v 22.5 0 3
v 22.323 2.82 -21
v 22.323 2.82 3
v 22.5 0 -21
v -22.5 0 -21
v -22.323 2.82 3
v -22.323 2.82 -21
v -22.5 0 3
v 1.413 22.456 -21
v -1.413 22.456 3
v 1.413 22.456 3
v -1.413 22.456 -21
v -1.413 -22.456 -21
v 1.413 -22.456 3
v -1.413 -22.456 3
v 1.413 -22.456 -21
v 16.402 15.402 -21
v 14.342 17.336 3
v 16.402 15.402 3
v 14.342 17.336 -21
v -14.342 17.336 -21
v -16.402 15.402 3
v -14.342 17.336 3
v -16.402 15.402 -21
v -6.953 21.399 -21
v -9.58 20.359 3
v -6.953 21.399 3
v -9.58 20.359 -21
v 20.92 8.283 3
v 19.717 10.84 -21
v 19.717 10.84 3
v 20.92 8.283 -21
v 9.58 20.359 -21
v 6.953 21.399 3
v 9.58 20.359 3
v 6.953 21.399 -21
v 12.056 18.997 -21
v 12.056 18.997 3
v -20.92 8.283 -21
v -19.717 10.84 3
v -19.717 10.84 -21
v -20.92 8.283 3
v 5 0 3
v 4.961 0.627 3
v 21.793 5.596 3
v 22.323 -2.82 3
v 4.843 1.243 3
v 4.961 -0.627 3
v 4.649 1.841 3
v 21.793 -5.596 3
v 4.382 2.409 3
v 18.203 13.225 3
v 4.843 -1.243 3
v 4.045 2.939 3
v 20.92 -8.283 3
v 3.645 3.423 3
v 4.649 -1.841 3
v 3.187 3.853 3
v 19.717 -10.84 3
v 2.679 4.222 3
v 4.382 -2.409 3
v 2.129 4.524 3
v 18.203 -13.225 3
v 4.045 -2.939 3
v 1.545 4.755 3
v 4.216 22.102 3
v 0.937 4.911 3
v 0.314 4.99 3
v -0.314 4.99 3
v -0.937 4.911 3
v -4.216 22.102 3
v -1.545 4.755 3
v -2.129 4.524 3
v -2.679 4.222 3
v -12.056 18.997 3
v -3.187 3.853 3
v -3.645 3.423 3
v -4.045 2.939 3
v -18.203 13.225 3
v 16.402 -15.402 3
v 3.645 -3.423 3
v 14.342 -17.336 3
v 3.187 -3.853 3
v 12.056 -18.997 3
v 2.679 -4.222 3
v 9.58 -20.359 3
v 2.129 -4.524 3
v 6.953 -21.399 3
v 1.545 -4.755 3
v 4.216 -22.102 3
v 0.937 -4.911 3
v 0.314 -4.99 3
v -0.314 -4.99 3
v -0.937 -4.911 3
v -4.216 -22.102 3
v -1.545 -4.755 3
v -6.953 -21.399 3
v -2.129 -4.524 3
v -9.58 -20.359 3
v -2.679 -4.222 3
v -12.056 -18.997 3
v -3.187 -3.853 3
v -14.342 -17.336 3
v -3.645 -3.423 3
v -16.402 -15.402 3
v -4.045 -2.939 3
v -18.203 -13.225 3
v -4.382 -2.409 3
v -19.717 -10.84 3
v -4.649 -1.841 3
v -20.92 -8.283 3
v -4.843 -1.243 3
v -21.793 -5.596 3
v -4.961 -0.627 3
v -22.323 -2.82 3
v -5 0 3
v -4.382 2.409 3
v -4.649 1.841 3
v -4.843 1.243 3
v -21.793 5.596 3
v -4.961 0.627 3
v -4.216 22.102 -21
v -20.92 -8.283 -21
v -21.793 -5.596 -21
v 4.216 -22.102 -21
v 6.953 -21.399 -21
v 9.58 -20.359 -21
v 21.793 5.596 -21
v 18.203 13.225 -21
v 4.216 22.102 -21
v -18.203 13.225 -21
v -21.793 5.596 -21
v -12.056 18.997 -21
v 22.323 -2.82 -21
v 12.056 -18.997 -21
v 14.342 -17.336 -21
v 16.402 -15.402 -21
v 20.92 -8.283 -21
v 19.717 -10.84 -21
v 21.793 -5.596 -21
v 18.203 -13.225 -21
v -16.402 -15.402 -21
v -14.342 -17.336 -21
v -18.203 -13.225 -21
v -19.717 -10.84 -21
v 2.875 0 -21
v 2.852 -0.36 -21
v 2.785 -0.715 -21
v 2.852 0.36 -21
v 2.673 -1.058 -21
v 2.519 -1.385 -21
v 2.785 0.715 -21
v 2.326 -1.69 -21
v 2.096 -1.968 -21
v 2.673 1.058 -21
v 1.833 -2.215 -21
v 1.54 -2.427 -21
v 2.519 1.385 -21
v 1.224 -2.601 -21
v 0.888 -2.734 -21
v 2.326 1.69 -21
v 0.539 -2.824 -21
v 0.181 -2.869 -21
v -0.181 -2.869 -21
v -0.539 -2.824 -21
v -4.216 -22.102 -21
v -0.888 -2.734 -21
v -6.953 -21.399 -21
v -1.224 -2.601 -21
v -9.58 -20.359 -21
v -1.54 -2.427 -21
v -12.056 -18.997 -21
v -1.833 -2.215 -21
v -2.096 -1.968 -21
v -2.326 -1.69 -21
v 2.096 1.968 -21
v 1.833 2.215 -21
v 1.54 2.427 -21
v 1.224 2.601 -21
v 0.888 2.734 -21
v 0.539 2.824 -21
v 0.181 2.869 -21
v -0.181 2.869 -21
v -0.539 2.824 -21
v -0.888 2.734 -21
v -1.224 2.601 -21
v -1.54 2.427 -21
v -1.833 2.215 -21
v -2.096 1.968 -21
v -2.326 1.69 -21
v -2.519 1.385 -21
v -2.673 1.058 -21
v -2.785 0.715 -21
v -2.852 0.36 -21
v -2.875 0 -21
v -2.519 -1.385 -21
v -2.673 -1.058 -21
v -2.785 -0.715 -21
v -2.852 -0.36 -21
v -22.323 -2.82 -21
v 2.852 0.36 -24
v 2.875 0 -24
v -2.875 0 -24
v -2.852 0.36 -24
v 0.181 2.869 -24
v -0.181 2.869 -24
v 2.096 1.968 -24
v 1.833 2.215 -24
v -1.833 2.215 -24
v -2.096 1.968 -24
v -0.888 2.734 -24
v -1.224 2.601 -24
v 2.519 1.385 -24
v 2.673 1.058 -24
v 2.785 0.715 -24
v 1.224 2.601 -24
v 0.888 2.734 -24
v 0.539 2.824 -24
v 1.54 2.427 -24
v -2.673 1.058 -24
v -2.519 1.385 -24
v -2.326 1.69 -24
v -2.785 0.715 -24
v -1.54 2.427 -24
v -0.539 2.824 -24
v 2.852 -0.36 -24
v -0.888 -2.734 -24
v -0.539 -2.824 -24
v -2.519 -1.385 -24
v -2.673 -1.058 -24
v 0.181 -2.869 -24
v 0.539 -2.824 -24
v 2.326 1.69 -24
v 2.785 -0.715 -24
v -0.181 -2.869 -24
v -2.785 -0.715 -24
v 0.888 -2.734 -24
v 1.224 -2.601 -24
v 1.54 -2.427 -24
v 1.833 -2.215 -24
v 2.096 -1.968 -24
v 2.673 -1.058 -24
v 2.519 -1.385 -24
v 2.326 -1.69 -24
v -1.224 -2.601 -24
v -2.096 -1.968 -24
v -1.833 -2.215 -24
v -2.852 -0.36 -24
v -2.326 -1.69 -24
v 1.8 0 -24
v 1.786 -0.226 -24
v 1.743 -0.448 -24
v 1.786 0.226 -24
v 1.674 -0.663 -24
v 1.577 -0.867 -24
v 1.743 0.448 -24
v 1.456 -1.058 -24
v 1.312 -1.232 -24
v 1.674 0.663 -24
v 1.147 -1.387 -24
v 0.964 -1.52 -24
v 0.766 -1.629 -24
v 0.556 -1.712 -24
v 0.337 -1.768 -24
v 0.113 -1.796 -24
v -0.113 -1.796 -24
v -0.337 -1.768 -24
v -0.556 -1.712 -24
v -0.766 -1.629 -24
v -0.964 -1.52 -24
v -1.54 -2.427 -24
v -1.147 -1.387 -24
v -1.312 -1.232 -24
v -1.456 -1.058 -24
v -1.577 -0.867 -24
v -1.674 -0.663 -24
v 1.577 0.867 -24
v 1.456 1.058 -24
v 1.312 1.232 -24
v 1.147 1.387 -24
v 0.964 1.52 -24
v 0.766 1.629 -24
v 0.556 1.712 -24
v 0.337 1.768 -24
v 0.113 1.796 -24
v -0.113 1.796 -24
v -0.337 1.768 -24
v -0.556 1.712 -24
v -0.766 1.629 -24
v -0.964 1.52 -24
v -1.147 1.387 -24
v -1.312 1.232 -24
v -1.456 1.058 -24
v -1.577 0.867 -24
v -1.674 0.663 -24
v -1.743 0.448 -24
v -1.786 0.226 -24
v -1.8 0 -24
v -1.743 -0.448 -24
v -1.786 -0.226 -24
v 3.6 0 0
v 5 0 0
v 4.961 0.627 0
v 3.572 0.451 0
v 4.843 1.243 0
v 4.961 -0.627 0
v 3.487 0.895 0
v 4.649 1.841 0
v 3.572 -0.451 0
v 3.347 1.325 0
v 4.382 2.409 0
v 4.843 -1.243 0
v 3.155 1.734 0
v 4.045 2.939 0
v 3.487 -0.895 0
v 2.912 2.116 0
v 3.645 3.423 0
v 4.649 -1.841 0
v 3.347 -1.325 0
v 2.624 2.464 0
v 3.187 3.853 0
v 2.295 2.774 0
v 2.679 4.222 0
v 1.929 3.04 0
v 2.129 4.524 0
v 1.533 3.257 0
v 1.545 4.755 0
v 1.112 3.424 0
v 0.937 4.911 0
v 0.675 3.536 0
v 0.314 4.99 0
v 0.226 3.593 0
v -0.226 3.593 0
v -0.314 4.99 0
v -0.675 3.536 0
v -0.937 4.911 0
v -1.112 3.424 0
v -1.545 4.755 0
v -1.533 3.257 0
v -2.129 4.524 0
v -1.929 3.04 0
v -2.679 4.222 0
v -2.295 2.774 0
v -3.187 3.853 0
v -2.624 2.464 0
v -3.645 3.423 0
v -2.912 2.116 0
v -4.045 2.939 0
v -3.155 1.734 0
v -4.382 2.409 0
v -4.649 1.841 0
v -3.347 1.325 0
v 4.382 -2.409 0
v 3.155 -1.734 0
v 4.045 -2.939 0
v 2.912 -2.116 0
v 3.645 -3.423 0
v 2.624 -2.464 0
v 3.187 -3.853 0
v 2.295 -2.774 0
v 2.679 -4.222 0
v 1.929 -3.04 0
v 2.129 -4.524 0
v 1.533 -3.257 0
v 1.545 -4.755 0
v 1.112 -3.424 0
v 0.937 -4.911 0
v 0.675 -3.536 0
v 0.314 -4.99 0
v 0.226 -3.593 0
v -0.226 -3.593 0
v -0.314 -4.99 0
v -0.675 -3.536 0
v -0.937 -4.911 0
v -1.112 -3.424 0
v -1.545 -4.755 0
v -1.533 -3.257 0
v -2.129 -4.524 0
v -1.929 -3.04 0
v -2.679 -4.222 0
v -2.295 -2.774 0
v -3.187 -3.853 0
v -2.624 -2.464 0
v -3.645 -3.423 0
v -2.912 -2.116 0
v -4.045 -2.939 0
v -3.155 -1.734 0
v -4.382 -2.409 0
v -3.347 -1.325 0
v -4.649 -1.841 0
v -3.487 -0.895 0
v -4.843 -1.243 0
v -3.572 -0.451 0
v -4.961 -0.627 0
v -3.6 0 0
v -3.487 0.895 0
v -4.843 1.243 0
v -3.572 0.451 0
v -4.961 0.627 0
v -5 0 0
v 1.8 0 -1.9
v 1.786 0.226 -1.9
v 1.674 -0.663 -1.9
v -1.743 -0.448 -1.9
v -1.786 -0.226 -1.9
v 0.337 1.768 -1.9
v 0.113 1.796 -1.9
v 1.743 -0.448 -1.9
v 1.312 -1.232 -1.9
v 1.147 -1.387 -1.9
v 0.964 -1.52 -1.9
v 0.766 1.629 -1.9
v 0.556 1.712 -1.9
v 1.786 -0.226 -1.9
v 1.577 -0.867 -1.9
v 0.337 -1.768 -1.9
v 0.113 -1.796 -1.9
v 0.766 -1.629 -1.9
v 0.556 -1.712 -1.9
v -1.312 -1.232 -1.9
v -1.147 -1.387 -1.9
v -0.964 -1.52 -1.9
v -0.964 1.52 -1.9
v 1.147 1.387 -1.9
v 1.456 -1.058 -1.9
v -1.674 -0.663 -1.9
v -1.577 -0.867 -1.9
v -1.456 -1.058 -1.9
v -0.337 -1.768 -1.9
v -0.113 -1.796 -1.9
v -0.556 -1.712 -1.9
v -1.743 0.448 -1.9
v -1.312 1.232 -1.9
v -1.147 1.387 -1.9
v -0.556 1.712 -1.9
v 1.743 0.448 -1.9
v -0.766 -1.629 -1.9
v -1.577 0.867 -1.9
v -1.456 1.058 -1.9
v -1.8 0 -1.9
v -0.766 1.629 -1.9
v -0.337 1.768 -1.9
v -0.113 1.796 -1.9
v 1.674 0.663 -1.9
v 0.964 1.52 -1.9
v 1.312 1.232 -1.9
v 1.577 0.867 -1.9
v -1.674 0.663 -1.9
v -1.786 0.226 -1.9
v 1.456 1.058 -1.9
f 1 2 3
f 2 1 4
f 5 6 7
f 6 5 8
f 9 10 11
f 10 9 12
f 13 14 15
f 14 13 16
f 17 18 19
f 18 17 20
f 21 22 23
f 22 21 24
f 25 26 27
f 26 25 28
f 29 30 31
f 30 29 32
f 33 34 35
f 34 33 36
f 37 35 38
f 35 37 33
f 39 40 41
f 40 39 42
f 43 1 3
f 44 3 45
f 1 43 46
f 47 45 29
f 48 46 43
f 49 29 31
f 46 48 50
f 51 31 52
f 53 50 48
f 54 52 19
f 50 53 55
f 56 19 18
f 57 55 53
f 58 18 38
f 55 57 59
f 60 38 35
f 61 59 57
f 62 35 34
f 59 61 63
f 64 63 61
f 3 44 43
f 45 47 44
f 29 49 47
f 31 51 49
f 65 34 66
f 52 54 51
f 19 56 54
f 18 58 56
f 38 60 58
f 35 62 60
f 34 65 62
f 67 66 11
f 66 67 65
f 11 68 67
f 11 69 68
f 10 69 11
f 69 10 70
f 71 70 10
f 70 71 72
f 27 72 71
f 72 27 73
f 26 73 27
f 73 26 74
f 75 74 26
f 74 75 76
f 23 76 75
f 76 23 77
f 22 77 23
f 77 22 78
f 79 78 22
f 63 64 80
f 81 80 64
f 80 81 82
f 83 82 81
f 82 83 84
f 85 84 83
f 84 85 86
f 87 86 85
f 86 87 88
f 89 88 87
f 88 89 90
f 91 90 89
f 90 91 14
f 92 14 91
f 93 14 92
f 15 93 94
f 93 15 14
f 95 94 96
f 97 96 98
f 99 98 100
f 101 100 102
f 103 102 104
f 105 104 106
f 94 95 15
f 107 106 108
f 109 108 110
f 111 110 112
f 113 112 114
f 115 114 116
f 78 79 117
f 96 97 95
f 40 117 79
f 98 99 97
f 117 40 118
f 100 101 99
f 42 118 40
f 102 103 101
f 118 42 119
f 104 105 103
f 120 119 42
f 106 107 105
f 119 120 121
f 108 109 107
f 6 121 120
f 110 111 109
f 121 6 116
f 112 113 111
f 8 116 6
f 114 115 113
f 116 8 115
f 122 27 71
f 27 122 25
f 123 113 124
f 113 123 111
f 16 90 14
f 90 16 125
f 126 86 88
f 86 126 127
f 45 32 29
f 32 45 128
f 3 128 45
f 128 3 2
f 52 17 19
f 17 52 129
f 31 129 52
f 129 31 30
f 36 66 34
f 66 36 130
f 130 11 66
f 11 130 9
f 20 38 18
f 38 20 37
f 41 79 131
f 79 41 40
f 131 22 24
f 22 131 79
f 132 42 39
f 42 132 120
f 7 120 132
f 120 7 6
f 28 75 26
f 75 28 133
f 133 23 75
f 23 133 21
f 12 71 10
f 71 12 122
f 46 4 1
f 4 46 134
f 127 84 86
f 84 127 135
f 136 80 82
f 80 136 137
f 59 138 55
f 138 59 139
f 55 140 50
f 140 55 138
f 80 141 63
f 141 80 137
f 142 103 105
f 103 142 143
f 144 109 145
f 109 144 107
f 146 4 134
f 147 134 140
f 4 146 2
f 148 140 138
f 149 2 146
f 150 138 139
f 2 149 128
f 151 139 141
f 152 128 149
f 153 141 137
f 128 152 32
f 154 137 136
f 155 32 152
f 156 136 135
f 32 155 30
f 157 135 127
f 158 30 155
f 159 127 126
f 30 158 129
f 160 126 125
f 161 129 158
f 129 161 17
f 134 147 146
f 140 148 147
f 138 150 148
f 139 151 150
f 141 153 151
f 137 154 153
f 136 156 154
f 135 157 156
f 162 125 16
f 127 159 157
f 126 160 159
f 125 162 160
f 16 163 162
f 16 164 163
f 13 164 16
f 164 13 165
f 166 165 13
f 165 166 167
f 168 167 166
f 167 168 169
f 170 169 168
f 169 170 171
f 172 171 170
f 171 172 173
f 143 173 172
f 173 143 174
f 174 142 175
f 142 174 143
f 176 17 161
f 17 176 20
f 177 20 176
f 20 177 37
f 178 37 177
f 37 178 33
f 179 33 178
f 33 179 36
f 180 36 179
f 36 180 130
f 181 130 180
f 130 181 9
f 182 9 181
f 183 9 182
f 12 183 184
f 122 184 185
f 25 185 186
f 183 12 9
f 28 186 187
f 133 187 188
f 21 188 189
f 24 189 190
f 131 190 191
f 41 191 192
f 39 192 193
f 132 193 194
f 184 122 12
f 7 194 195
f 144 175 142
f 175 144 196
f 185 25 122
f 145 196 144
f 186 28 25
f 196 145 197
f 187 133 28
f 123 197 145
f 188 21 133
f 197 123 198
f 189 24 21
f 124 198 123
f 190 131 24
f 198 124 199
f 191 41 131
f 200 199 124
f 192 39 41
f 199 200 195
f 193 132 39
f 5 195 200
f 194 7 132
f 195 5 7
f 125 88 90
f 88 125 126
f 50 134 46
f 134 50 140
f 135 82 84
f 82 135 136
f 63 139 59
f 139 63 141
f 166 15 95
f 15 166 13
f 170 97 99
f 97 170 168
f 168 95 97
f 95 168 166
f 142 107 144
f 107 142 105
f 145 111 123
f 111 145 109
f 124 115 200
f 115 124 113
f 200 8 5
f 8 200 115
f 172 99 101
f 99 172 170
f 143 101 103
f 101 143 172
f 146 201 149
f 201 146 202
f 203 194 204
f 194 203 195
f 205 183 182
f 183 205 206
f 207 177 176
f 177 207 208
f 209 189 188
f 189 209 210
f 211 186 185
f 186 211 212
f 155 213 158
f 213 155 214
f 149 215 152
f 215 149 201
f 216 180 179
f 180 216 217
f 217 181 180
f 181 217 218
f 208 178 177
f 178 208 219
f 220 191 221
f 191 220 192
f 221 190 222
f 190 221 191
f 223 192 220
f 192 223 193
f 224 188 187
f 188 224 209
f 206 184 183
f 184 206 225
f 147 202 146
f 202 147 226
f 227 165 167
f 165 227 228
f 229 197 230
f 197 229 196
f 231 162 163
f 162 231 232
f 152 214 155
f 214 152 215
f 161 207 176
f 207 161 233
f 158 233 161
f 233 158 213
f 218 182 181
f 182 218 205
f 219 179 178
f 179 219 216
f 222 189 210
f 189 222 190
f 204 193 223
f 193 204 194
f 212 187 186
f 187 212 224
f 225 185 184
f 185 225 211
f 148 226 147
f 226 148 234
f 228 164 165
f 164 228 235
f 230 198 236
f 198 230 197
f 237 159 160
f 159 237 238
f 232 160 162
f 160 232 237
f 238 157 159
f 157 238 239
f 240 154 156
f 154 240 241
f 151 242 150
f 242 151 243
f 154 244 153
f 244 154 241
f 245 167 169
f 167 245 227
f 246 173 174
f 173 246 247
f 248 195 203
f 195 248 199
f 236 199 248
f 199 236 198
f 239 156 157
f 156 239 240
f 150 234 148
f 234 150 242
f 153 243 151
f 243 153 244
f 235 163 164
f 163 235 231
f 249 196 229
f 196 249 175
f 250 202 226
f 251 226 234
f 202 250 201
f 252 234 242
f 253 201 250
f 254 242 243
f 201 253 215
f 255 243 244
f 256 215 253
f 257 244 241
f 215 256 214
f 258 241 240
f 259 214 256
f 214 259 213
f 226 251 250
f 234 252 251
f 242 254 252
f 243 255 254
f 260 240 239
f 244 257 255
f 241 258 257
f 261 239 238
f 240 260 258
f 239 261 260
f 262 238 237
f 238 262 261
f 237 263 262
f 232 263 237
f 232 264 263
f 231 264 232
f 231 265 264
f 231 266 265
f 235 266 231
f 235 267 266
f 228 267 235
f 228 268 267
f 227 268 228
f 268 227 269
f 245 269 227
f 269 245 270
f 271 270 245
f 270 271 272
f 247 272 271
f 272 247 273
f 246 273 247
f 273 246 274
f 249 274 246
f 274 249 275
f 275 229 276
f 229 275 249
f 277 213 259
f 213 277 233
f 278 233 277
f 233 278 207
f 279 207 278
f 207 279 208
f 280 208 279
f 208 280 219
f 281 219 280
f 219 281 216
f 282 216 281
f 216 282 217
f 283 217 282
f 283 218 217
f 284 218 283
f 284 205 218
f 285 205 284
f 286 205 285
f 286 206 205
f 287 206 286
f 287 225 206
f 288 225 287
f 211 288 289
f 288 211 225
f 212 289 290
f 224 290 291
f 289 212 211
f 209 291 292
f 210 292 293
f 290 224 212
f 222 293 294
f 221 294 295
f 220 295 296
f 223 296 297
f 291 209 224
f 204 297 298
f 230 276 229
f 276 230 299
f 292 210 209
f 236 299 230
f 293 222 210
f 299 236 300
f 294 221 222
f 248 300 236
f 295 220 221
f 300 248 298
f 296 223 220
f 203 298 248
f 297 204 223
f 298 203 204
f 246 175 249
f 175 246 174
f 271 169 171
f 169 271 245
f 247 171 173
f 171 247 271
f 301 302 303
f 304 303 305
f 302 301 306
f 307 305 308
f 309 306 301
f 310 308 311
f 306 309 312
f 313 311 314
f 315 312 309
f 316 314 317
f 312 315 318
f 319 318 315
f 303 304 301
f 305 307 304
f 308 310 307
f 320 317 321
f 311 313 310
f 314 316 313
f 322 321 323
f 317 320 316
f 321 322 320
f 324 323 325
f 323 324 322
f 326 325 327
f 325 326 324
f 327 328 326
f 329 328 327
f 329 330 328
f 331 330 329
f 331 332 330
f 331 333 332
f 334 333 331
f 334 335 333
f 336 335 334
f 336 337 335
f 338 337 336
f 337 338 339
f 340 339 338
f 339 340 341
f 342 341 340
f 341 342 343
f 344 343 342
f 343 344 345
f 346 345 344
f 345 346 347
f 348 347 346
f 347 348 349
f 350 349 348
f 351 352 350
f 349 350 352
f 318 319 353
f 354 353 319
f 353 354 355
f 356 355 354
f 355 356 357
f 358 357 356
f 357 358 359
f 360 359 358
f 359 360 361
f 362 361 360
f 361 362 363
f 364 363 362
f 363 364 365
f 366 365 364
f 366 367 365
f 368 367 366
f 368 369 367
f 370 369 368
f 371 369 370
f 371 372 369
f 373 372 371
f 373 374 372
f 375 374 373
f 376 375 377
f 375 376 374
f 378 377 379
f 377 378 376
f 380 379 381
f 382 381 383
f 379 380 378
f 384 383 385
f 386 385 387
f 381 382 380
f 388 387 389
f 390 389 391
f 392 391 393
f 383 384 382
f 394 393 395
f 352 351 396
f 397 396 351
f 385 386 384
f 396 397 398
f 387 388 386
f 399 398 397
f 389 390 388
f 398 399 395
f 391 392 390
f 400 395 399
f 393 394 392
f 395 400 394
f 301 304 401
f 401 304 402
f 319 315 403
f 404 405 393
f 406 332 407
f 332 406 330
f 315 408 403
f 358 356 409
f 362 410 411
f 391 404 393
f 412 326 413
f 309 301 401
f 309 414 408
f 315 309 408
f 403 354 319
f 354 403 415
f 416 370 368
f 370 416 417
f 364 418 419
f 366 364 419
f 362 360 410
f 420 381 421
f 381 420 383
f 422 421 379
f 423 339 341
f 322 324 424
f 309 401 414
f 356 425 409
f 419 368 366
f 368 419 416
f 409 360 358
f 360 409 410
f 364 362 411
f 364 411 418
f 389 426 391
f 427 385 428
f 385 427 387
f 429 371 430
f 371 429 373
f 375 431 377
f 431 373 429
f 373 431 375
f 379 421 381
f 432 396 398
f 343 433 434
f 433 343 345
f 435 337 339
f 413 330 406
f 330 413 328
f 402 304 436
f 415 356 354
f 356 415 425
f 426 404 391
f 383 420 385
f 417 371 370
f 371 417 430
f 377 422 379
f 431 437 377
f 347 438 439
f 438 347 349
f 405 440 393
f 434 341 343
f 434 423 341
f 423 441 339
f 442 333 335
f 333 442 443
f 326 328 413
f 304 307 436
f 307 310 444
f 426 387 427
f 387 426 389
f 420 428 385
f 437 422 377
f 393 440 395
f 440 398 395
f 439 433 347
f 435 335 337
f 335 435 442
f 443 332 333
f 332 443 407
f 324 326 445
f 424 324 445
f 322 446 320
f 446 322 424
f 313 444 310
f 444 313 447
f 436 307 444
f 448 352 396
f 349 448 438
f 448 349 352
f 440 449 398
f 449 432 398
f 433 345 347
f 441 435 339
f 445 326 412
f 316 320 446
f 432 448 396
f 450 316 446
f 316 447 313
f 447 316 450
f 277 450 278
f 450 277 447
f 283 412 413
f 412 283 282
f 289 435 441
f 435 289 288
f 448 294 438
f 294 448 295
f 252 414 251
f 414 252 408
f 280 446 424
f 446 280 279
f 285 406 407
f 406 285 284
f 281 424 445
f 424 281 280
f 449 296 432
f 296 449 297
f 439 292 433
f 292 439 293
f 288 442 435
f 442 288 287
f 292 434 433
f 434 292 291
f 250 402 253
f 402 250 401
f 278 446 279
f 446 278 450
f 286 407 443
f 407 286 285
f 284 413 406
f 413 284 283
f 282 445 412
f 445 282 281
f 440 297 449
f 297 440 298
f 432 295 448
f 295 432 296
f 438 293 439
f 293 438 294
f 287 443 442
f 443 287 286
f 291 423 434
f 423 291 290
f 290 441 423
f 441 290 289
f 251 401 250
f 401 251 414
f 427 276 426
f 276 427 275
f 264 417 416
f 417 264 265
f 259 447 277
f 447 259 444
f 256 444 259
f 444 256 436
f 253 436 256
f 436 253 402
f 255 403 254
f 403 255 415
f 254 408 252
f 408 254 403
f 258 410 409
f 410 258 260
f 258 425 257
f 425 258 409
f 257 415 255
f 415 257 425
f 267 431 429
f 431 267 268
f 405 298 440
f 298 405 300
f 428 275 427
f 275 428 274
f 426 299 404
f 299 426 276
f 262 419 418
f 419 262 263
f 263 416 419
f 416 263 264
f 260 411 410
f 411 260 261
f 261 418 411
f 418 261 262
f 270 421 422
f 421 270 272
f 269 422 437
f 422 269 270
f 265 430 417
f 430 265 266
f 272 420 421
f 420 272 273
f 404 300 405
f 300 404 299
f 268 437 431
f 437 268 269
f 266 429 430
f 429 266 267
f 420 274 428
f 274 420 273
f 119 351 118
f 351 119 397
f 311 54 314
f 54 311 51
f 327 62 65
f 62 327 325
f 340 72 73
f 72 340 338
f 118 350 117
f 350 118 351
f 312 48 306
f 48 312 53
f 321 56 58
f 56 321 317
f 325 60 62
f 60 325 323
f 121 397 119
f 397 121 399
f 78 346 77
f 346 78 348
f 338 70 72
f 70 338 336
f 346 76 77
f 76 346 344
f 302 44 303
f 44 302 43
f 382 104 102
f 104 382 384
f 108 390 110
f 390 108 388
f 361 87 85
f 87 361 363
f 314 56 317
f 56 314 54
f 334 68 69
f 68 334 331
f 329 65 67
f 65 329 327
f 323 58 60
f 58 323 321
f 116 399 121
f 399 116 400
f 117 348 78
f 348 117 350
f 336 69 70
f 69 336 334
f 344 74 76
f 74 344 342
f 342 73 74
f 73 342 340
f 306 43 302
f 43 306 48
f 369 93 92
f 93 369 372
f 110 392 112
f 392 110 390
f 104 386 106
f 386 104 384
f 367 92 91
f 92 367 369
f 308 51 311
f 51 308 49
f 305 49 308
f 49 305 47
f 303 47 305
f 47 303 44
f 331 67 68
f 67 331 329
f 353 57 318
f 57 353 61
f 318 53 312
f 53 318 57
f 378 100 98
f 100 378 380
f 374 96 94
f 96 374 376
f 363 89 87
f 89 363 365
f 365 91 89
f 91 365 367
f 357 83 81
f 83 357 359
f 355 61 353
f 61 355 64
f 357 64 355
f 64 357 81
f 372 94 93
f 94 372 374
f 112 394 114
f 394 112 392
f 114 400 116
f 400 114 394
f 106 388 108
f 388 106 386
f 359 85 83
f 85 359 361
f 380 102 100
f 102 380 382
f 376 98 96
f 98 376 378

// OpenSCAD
$fn = 50;


difference() {
	union() {
		translate(v = [0, 0, -21.0000000000]) {
			cylinder(h = 24, r = 22.5000000000);
		}
		#translate(v = [0, 0, -24.0000000000]) {
			cylinder(h = 24, r = 2.8750000000);
		}
	}
	union() {
		translate(v = [0, 0, 0]) {
			rotate(a = [0, 0, 0]) {
				difference() {
					union() {
						translate(v = [0, 0, -24.0000000000]) {
							cylinder(h = 24, r = 1.5000000000);
						}
						translate(v = [0, 0, -1.9000000000]) {
							cylinder(h = 1.9000000000, r1 = 1.8000000000, r2 = 3.6000000000);
						}
						translate(v = [0, 0, -24.0000000000]) {
							cylinder(h = 24, r = 1.8000000000);
						}
						translate(v = [0, 0, -24.0000000000]) {
							cylinder(h = 24, r = 1.5000000000);
						}
					}
					union();
				}
			}
		}
		#cylinder(h = 3, r = 5.0000000000);
	}
}
